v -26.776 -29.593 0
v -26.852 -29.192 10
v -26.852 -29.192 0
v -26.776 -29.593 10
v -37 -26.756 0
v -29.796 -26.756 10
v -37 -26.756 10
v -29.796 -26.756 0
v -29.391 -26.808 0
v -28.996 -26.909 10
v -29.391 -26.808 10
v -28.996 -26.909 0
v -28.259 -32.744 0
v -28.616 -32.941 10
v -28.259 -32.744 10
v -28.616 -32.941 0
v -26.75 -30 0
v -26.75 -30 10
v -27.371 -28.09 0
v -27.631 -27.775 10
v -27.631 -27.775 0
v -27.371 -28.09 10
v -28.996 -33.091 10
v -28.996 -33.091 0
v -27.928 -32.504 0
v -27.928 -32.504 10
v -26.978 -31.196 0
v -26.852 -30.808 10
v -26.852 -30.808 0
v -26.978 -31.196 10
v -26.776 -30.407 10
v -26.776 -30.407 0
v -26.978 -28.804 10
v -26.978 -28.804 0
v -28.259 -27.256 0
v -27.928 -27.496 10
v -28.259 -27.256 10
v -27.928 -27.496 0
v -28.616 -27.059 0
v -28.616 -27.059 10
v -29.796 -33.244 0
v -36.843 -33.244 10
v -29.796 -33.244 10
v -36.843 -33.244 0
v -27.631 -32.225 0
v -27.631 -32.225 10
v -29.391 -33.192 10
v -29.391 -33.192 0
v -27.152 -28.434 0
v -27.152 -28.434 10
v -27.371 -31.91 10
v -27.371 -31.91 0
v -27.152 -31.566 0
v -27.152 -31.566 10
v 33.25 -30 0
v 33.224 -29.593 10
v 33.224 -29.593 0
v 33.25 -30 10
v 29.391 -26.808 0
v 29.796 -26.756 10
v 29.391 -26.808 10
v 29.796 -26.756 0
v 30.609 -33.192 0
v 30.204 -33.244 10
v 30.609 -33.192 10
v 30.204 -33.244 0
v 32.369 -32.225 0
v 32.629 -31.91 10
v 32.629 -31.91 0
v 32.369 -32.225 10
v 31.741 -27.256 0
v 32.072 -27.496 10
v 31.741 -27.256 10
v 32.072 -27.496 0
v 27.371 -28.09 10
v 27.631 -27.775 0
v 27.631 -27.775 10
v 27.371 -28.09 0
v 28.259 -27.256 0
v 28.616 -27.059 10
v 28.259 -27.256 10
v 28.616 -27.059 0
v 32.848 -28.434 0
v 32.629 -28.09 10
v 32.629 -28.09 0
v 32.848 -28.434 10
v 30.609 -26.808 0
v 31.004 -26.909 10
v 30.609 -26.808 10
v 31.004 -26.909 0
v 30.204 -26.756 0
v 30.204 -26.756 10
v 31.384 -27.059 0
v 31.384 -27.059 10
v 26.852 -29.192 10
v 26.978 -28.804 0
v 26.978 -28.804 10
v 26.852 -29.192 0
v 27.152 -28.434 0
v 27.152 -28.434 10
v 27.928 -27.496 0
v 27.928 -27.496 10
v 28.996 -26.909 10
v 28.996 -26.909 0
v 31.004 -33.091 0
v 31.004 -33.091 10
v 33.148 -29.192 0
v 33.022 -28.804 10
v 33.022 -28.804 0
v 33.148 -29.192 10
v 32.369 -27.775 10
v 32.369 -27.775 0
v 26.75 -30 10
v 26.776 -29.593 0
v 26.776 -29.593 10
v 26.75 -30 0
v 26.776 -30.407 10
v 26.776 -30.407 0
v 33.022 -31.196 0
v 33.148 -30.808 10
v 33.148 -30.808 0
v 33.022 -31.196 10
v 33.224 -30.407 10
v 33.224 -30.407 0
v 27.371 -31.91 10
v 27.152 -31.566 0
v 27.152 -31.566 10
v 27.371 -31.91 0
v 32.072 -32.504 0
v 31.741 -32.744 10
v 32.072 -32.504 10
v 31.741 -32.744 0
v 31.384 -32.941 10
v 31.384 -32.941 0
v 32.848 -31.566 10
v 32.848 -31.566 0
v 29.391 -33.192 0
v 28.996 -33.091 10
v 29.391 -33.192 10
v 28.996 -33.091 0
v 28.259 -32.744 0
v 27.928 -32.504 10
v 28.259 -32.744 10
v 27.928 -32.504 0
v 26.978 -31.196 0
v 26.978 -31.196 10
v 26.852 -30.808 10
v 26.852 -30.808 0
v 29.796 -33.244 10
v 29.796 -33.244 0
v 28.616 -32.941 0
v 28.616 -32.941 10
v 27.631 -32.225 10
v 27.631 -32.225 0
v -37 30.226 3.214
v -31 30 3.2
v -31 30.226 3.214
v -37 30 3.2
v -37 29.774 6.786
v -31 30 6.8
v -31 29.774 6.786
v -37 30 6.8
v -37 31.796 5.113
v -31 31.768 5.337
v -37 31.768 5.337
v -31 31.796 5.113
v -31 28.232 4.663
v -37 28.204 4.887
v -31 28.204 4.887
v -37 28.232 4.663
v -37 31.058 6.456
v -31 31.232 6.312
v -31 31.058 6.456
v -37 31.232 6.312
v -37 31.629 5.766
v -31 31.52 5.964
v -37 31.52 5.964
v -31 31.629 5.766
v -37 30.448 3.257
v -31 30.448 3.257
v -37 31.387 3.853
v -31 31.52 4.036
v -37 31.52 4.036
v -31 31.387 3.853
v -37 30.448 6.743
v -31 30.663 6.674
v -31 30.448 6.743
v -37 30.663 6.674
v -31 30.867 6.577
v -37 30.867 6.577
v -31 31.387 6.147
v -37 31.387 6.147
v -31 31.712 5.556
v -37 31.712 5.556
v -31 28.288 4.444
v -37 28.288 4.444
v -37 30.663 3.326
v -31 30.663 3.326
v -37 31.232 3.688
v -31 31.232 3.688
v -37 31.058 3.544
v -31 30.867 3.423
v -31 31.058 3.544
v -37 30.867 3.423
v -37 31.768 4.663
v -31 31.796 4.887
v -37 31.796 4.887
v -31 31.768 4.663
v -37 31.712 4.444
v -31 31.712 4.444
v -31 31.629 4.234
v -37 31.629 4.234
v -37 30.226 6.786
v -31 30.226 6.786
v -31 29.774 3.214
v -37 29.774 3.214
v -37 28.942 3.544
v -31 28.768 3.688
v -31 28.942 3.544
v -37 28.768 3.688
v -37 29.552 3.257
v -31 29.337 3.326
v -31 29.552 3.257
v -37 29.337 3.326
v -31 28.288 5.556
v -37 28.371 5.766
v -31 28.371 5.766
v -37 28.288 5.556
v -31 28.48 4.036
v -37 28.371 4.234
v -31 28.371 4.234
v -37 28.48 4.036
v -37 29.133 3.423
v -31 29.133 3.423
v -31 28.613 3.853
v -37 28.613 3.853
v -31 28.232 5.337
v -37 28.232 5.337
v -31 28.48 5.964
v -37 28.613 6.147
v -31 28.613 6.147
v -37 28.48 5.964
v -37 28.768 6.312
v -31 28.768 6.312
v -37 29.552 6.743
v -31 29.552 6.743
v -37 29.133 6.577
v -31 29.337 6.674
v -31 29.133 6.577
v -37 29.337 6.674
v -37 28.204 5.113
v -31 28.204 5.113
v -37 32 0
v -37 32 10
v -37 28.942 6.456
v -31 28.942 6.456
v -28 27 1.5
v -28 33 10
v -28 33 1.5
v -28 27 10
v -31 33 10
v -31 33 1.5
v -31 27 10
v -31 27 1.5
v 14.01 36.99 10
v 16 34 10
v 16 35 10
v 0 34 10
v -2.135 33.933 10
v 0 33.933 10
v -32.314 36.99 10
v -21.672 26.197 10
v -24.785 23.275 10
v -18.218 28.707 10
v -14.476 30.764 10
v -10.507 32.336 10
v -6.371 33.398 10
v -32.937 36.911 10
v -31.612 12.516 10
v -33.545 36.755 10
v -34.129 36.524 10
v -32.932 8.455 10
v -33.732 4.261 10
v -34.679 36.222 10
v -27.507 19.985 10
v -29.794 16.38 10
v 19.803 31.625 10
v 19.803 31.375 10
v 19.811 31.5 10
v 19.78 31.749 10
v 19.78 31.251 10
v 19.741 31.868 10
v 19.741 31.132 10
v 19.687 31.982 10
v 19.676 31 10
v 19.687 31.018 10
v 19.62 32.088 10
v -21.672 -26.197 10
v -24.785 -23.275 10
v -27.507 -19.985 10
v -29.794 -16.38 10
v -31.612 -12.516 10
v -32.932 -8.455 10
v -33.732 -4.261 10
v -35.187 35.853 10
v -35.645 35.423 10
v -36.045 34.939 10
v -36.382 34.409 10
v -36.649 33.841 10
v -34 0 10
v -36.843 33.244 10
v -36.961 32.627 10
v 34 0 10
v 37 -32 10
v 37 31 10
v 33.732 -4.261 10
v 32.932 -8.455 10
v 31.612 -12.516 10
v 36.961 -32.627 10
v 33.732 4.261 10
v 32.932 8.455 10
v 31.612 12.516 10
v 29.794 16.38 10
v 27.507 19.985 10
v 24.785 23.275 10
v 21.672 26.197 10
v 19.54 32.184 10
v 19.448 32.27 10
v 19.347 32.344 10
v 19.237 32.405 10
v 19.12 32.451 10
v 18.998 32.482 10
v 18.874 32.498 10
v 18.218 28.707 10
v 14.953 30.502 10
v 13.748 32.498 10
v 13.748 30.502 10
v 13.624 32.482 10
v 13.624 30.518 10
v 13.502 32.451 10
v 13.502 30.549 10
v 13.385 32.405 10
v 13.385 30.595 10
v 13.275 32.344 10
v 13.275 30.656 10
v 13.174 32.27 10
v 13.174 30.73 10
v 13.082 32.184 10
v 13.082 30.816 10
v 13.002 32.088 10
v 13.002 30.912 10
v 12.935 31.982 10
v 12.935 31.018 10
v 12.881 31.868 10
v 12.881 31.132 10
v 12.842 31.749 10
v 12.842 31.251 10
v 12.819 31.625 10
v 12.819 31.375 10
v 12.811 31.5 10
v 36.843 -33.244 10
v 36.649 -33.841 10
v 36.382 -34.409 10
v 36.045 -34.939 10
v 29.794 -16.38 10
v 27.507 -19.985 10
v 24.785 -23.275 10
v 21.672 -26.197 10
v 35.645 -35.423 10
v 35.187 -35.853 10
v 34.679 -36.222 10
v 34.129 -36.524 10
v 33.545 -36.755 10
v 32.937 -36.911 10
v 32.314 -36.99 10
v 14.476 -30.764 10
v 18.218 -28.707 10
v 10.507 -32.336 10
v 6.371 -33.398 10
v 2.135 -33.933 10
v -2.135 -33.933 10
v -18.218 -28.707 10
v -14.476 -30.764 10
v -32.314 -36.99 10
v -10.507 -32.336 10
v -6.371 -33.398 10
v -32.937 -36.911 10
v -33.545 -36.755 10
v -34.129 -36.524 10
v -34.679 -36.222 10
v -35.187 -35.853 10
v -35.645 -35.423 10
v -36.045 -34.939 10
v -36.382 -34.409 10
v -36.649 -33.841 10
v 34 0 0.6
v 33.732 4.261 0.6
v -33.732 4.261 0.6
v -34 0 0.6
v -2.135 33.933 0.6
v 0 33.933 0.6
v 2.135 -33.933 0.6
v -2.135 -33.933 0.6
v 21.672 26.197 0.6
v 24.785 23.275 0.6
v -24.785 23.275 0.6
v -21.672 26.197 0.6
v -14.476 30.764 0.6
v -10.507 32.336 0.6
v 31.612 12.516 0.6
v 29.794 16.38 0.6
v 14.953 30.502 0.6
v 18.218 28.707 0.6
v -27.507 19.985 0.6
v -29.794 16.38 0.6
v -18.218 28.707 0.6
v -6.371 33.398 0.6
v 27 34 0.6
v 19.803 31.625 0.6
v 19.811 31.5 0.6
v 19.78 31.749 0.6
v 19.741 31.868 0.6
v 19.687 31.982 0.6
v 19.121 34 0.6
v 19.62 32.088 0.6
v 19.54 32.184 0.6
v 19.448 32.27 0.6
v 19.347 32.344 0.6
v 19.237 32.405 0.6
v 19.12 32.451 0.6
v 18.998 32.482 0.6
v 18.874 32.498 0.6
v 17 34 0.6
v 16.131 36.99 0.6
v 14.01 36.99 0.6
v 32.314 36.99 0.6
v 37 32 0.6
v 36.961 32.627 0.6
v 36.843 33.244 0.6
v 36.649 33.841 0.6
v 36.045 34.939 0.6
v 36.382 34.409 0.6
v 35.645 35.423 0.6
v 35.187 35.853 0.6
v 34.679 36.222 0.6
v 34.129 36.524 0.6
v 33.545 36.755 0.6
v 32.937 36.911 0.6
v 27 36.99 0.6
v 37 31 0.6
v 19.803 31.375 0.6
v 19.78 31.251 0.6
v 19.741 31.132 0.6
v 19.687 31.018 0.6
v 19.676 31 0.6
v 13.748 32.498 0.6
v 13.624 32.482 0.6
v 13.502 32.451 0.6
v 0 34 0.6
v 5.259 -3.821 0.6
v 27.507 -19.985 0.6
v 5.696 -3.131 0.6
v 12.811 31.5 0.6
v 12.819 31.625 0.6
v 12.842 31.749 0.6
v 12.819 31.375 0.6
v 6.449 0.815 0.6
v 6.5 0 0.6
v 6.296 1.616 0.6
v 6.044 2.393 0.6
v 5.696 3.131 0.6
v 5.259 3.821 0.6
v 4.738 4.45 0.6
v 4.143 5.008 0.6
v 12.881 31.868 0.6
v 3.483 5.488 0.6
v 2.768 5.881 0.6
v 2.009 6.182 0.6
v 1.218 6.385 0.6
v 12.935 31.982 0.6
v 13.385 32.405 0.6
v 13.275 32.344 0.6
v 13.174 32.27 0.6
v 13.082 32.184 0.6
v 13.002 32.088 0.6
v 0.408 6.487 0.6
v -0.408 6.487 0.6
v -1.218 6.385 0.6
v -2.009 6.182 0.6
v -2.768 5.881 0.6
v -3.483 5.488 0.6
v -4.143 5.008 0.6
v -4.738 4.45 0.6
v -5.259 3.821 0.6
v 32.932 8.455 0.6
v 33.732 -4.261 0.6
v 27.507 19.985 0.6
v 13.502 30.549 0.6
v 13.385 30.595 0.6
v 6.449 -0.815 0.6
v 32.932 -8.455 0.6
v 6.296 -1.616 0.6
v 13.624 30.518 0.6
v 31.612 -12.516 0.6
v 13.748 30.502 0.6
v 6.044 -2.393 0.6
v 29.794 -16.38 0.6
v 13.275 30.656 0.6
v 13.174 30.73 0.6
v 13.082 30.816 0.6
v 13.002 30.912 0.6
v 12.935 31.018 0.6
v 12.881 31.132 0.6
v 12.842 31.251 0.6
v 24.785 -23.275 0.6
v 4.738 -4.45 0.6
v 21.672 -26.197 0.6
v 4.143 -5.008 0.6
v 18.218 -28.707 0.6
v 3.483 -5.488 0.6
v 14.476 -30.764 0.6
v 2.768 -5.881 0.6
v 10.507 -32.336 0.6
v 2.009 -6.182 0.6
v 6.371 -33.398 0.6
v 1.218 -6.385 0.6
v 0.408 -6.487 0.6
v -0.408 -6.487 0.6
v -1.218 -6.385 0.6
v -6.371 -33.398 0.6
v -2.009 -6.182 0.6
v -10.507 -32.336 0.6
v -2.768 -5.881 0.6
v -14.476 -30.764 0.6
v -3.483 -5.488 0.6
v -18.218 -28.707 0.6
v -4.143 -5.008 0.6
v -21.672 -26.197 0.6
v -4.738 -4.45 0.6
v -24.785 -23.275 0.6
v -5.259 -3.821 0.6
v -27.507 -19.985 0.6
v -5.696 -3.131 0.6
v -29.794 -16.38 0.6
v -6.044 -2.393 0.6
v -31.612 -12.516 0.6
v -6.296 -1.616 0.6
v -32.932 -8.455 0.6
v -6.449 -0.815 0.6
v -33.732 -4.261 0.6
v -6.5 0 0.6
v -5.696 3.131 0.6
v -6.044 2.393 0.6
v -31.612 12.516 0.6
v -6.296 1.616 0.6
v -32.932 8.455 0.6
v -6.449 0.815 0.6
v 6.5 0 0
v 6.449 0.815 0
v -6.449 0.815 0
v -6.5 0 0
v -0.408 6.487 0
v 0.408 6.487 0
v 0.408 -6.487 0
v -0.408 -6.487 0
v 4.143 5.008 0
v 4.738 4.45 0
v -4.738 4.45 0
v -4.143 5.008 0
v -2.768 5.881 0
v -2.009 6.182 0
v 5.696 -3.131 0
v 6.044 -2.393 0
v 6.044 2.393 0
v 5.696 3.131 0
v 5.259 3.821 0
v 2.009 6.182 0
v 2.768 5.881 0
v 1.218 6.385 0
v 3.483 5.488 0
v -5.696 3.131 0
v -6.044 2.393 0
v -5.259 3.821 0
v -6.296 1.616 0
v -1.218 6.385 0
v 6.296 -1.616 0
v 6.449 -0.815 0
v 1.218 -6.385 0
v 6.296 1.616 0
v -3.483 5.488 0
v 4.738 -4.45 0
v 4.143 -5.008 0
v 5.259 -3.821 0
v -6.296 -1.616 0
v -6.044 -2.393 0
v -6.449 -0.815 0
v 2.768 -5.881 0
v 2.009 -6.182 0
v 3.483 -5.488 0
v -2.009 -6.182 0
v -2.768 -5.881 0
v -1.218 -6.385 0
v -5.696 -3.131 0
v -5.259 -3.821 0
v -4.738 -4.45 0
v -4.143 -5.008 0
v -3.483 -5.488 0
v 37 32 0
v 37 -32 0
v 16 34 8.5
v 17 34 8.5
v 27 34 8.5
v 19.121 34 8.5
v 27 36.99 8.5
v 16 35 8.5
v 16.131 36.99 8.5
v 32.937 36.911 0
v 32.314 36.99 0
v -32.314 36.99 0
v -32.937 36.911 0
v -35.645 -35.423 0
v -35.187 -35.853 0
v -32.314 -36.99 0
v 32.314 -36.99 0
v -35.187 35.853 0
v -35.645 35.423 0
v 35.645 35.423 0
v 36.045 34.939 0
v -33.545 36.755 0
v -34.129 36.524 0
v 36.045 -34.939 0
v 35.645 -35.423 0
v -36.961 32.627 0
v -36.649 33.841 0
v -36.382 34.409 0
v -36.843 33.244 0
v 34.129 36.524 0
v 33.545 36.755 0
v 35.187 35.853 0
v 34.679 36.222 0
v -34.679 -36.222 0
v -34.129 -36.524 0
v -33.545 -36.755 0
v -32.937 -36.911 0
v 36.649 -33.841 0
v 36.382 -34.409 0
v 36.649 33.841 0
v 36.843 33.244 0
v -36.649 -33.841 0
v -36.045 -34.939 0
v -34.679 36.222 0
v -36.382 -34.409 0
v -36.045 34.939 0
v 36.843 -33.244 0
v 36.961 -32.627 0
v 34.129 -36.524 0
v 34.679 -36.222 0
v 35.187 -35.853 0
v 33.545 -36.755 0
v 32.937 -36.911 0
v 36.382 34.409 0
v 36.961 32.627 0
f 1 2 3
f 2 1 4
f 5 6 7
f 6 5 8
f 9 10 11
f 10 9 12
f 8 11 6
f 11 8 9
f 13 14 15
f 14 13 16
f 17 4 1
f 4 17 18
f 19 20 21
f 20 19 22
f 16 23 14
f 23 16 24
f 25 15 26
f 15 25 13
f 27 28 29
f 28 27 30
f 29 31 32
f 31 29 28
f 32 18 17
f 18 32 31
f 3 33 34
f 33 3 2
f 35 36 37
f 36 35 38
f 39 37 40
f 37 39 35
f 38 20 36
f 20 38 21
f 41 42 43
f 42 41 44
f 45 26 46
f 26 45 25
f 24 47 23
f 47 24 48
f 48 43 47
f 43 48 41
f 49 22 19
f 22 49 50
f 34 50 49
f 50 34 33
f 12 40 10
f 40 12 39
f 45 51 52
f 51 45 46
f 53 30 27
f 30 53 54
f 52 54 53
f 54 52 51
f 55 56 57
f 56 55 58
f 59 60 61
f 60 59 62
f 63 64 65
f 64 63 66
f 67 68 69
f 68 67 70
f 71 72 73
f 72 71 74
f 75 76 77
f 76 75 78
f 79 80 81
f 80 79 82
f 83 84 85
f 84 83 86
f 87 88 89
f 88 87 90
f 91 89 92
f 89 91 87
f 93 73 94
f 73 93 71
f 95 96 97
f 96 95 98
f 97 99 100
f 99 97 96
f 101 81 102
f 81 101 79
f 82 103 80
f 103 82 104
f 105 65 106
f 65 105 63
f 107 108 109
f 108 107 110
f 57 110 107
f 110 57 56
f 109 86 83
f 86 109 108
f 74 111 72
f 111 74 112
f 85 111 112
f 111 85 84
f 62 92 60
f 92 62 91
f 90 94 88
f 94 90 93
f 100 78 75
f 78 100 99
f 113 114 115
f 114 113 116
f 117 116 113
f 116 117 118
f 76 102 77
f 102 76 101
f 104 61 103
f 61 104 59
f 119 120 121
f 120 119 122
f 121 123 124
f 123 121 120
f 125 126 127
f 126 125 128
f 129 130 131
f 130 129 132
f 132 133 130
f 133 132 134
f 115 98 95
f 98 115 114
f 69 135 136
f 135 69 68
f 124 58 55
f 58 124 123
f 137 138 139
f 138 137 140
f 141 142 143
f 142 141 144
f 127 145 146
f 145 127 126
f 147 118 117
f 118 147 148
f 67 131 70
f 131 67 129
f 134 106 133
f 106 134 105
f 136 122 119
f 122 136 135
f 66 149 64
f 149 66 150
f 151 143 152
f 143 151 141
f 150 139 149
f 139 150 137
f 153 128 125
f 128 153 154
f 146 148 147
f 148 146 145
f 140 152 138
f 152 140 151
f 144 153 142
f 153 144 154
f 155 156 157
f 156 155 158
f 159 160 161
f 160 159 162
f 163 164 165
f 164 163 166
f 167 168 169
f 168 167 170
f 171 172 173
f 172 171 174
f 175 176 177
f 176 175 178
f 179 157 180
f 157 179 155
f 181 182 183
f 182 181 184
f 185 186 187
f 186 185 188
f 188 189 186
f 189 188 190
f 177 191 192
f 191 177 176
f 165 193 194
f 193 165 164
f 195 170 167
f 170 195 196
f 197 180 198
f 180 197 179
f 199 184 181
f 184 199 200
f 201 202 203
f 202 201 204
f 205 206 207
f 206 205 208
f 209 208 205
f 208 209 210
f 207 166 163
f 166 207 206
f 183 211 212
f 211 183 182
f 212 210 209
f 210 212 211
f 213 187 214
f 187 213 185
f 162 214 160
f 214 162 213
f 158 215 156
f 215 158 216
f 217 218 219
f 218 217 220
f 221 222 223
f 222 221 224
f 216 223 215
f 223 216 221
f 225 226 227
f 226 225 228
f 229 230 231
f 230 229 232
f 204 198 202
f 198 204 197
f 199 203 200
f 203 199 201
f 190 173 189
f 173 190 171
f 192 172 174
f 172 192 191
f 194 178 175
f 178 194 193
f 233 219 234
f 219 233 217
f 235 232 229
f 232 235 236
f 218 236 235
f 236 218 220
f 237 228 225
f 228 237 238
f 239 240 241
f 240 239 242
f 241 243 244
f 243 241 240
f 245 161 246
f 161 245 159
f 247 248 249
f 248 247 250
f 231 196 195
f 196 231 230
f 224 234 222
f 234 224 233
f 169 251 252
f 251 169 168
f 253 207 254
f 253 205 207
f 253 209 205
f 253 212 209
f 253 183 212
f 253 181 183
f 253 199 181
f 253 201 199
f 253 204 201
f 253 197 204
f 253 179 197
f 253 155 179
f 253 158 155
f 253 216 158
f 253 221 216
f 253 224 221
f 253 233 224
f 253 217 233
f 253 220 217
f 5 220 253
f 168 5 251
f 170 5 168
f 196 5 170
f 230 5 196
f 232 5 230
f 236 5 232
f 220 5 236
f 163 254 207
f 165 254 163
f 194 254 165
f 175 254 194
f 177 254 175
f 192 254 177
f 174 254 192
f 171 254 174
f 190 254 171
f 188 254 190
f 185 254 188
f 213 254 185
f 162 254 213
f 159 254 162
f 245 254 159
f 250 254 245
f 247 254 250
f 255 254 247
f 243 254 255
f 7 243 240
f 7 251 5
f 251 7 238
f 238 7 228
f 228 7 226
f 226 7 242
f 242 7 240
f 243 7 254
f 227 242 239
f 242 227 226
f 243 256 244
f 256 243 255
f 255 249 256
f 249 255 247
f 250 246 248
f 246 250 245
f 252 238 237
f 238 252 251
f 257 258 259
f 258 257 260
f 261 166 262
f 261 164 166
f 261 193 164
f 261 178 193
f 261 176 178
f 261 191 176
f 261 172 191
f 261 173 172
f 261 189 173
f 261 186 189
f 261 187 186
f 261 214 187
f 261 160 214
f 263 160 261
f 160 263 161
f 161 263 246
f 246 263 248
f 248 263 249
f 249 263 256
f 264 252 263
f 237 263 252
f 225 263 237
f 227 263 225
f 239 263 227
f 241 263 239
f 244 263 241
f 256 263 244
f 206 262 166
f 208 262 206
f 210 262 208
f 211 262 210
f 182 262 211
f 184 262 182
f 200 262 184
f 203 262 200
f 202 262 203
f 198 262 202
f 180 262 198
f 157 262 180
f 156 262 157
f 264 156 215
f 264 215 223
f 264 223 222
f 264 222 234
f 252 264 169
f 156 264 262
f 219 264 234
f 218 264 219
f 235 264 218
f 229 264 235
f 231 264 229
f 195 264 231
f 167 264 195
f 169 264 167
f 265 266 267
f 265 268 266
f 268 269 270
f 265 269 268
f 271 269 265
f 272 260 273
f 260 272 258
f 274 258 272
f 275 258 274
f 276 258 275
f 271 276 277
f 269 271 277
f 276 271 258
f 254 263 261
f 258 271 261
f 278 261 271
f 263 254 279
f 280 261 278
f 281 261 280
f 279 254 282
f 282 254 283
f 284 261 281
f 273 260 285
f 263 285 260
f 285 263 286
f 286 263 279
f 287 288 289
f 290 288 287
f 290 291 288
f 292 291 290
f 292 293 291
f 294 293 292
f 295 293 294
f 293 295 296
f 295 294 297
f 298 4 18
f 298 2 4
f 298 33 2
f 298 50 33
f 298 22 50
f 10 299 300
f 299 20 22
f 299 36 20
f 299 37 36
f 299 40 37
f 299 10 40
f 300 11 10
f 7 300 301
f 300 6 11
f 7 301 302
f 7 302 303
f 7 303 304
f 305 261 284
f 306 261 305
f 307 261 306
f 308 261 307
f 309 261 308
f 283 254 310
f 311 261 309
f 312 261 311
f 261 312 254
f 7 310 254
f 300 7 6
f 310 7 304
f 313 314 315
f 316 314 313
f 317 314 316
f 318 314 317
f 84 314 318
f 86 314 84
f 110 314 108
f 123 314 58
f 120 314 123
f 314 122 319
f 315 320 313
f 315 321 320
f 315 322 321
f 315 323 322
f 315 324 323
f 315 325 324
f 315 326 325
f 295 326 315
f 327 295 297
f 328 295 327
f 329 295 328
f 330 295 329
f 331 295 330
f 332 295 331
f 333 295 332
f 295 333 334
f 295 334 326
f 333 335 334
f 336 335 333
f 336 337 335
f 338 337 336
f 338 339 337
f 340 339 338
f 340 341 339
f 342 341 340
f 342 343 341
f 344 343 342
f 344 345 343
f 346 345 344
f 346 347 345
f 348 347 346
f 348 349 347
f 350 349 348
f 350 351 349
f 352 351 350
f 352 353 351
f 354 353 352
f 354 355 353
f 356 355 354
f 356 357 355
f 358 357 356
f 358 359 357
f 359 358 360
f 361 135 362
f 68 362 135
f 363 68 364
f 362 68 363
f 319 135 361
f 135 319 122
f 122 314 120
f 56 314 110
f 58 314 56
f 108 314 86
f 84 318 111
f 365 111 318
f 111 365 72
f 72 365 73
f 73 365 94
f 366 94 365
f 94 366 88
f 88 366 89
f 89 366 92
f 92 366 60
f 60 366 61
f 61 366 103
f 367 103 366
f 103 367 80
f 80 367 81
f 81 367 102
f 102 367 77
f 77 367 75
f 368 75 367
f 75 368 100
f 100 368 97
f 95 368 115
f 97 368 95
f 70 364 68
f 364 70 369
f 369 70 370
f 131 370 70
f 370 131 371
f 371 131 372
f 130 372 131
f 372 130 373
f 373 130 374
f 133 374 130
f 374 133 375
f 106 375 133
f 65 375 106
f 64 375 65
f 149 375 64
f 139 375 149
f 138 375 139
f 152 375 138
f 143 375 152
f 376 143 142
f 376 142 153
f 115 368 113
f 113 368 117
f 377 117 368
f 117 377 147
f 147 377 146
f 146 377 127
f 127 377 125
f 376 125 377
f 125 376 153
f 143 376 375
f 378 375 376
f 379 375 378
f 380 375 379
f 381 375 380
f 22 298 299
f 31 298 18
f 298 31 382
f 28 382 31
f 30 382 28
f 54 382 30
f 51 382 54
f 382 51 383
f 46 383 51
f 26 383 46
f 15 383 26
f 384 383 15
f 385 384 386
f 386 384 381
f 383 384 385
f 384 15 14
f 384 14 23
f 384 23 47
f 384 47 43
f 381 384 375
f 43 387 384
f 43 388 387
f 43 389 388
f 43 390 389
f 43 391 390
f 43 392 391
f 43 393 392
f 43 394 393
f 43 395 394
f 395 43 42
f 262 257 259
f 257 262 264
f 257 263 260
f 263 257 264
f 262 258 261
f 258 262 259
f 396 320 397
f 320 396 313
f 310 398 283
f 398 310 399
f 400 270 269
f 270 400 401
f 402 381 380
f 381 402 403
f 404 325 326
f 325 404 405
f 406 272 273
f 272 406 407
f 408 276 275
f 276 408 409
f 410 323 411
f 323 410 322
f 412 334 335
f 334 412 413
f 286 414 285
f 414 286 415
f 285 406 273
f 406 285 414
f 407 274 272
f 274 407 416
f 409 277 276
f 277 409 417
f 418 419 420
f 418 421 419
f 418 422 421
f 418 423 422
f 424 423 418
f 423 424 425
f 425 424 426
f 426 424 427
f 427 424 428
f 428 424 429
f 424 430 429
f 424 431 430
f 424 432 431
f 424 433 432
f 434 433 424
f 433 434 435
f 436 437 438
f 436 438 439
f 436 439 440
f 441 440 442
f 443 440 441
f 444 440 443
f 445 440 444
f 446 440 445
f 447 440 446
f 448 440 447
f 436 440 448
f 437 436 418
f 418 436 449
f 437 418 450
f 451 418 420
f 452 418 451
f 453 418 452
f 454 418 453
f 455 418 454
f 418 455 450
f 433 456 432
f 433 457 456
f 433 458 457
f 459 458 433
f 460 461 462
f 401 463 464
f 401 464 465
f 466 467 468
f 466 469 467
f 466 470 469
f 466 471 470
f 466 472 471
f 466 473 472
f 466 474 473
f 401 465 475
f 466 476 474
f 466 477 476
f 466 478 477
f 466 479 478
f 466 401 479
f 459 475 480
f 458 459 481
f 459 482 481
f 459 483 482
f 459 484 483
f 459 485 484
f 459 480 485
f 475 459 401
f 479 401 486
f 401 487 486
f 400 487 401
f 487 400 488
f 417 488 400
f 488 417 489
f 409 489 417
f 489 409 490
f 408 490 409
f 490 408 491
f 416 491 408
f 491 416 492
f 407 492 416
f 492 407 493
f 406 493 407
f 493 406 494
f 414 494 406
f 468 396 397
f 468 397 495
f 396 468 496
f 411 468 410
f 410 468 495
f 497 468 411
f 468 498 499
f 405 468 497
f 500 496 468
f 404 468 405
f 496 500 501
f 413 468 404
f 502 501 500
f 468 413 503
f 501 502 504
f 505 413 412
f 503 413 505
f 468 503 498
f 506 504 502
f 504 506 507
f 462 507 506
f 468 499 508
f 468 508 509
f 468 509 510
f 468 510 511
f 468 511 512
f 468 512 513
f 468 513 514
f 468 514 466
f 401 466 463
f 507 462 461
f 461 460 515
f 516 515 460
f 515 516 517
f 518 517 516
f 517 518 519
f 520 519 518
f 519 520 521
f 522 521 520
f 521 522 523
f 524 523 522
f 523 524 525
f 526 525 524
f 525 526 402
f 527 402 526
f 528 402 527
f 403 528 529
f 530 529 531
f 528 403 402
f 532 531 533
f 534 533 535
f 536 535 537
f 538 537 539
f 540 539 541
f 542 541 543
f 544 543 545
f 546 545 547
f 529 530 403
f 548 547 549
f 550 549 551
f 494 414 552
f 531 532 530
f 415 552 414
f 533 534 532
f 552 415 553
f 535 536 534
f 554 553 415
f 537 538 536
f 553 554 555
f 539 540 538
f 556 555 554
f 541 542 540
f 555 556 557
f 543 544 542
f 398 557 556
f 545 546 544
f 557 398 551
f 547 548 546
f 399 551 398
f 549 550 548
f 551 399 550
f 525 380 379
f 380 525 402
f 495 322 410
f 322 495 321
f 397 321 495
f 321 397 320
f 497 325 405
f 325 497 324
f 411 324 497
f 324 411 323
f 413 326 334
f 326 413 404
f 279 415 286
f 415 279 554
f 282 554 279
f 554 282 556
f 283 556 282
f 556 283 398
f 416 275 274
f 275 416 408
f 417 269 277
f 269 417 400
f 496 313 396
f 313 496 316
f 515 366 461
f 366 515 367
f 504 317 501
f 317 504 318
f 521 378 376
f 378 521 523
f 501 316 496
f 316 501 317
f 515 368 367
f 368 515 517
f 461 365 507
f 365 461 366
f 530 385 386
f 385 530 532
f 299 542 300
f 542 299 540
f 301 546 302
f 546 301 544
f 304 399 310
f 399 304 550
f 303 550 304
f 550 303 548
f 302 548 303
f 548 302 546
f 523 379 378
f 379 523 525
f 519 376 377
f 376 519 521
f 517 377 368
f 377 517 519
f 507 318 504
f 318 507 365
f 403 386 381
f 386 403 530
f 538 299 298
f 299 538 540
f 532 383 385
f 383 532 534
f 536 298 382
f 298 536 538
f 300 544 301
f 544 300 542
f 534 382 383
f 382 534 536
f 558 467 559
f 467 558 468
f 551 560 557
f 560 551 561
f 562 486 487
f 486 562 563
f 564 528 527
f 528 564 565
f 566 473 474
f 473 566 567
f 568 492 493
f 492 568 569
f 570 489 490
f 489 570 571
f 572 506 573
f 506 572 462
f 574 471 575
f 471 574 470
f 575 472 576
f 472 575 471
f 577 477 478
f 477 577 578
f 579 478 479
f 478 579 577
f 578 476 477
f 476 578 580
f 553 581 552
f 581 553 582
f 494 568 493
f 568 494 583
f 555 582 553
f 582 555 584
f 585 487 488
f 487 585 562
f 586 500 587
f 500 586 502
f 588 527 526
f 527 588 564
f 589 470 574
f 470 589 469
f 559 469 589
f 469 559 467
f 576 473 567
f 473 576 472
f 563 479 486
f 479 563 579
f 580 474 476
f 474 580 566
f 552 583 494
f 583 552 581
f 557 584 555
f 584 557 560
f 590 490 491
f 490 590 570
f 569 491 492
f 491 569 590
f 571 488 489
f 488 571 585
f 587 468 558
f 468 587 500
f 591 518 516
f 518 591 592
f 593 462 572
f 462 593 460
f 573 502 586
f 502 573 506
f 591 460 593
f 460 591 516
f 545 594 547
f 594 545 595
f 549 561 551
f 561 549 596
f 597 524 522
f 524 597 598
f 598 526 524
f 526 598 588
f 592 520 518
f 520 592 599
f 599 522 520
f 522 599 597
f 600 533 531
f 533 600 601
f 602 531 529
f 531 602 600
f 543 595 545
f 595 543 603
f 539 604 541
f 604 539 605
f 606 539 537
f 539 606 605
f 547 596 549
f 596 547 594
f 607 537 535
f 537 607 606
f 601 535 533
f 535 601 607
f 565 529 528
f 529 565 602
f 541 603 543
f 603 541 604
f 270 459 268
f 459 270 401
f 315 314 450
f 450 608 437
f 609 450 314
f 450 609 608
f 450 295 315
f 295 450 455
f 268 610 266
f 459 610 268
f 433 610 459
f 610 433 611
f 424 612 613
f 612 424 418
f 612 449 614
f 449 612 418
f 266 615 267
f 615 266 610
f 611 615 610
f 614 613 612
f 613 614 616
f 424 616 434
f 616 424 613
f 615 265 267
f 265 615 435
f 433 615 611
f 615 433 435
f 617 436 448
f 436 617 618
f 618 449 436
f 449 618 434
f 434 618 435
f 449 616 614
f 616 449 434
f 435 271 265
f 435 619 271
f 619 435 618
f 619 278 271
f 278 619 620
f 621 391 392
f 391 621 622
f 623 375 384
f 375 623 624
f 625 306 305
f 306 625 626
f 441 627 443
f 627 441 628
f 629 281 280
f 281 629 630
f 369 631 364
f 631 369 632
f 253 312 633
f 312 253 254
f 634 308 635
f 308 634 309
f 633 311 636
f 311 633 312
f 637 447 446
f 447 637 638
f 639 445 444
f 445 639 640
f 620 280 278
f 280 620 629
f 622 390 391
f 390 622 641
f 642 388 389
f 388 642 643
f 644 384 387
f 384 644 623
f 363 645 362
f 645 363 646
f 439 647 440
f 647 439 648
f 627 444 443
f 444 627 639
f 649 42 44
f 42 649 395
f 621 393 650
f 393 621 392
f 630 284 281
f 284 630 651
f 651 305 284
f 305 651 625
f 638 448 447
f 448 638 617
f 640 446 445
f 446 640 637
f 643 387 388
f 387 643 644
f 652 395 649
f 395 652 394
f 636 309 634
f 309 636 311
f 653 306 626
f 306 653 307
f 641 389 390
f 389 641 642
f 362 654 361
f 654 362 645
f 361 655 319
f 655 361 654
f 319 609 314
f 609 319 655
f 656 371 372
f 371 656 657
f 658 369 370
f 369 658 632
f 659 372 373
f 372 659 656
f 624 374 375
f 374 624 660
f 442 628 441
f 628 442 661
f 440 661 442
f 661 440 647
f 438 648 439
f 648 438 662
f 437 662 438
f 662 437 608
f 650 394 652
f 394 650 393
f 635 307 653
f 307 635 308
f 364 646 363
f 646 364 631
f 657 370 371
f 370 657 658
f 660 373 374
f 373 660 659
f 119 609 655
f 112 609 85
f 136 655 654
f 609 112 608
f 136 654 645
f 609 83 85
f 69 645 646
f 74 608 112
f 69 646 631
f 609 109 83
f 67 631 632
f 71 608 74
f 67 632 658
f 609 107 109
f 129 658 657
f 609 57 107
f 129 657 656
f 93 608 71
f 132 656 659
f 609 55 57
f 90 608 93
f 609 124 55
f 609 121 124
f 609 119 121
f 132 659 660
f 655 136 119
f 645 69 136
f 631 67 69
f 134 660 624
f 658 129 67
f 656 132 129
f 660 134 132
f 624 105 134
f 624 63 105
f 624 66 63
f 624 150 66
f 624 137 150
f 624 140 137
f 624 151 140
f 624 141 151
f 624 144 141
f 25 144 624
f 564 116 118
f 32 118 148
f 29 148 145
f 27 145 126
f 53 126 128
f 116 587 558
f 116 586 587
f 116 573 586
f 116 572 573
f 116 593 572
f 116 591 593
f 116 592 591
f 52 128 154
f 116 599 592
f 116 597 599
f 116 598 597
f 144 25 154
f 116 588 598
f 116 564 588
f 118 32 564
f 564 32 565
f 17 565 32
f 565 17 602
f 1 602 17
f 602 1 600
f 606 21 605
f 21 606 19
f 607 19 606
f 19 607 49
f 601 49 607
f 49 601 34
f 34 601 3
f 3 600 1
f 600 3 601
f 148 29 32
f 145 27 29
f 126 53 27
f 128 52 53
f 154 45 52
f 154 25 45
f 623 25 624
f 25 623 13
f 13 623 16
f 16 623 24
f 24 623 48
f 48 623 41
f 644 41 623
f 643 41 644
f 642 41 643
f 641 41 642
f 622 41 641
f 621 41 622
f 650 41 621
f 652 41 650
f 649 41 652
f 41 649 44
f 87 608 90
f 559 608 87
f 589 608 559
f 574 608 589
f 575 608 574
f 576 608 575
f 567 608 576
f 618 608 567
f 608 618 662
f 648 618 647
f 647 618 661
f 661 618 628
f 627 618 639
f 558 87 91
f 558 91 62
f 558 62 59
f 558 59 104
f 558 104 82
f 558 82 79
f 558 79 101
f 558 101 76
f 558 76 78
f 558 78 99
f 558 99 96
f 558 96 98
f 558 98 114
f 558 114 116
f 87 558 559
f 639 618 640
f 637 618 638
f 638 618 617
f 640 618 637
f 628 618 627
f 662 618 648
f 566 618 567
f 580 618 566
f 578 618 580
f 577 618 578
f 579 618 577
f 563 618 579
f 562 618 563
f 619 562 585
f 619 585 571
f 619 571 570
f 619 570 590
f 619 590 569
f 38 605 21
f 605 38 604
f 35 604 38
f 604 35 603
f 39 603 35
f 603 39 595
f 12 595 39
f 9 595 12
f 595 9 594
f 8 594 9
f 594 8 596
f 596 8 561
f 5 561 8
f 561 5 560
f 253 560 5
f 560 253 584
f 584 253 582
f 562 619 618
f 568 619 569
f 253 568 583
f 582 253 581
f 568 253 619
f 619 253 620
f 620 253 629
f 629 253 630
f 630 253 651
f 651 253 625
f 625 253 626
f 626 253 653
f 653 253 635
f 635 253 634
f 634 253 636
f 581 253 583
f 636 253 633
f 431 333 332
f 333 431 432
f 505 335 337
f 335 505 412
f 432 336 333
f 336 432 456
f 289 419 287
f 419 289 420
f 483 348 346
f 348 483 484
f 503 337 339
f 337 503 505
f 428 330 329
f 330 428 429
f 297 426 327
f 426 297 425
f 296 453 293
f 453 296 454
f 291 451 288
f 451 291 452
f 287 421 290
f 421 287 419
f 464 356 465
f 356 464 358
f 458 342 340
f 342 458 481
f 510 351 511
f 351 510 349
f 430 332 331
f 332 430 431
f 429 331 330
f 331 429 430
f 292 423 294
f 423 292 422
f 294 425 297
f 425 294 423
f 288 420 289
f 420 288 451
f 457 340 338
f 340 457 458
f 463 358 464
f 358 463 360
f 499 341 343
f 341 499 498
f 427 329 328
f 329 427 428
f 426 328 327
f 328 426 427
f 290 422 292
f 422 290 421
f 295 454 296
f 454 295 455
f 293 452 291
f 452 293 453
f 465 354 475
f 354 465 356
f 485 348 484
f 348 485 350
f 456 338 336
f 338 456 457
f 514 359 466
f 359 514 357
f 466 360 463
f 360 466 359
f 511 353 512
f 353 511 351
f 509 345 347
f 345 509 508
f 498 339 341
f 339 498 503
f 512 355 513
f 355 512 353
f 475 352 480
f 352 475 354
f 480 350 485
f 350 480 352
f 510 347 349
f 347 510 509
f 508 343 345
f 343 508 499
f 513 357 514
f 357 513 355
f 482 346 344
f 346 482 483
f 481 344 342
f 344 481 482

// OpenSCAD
$fn = 50;


union() {
	difference() {
		union() {
			translate(v = [0, 0, 0]) {
				rotate(a = [0, 0, 0]) {
					hull() {
						translate(v = [-32.0000000000, 32.0000000000, 0]) {
							rotate(a = [0, 0, 0]) {
								translate(v = [0, 0, 0]) {
									rotate(a = [0, 0, 0]) {
										cylinder(h = 10, r = 5);
									}
								}
							}
						}
						translate(v = [32.0000000000, 32.0000000000, 0]) {
							rotate(a = [0, 0, 0]) {
								translate(v = [0, 0, 0]) {
									rotate(a = [0, 0, 0]) {
										cylinder(h = 10, r = 5);
									}
								}
							}
						}
						translate(v = [-32.0000000000, -32.0000000000, 0]) {
							rotate(a = [0, 0, 0]) {
								translate(v = [0, 0, 0]) {
									rotate(a = [0, 0, 0]) {
										cylinder(h = 10, r = 5);
									}
								}
							}
						}
						translate(v = [32.0000000000, -32.0000000000, 0]) {
							rotate(a = [0, 0, 0]) {
								translate(v = [0, 0, 0]) {
									rotate(a = [0, 0, 0]) {
										cylinder(h = 10, r = 5);
									}
								}
							}
						}
					}
				}
			}
		}
		union() {
			translate(v = [-37.5000000000, -30.0000000000, -125]) {
				rotate(a = [0, 0, 0]) {
					hull() {
						translate(v = [7.5000000000, 0, 0]) {
							rotate(a = [0, 0, 0]) {
								translate(v = [0, 0, 0]) {
									rotate(a = [0, 0, 0]) {
										cylinder(h = 250, r = 3.2500000000);
									}
								}
							}
						}
						translate(v = [-7.5000000000, 0, 0]) {
							rotate(a = [0, 0, 0]) {
								translate(v = [0, 0, 0]) {
									rotate(a = [0, 0, 0]) {
										cylinder(h = 250, r = 3.2500000000);
									}
								}
							}
						}
					}
				}
			}
			translate(v = [30.0000000000, -30.0000000000, -125.0000000000]) {
				rotate(a = [0, 0, 0]) {
					cylinder(h = 250, r = 3.2500000000);
				}
			}
			translate(v = [-37.0000000000, 30.0000000000, 5.0000000000]) {
				rotate(a = [0, 90, 0]) {
					cylinder(h = 9, r = 1.8000000000);
				}
			}
			translate(v = [-31.0000000000, 27.0000000000, 1.5000000000]) {
				rotate(a = [0, 0, 0]) {
					cube(size = [3, 6, 8.5000000000]);
				}
			}
			translate(v = [0, 0, 0.6000000000]) {
				rotate(a = [0, 0, 0]) {
					cylinder(h = 12.4000000000, r = 34.0000000000);
				}
			}
			translate(v = [0, 0, -5.0000000000]) {
				rotate(a = [0, 0, 0]) {
					cylinder(h = 10, r = 6.5000000000);
				}
			}
			translate(v = [0.0000000000, 31.0000000000, 0.6000000000]) {
				rotate(a = [0, 0, 0]) {
					cube(size = [37.0000000000, 3, 12.4000000000]);
				}
			}
			translate(v = [27.0000000000, 31.0000000000, 0.6000000000]) {
				rotate(a = [0, 0, 0]) {
					cube(size = [10, 6, 12.4000000000]);
				}
			}
			#translate(v = [16.0000000000, 31.0000000000, 8.5000000000]) {
				rotate(a = [0, 0, 0]) {
					cube(size = [21, 6, 1.5000000000]);
				}
			}
			translate(v = [13.2500000000, 37.7500000000, 0.6000000000]) {
				rotate(a = [0, 0, -45]) {
					cube(size = [7.5000000000, 1.5000000000, 12.4000000000]);
				}
			}
			translate(v = [7.0610000000, 30.5000000000, 0.6000000000]) {
				rotate(a = [0, 0, 0]) {
					cube(size = [7.5000000000, 2, 9.4000000000]);
				}
			}
		}
	}
	union() {
		translate(v = [16.3110000000, 31.5000000000, 0]) {
			rotate(a = [0, 0, 0]) {
				hull() {
					translate(v = [2.5000000000, 0, 0]) {
						rotate(a = [0, 0, 0]) {
							translate(v = [0, 0, 0]) {
								rotate(a = [0, 0, 0]) {
									cylinder(h = 10, r = 1.0000000000);
								}
							}
						}
					}
					translate(v = [-2.5000000000, 0, 0]) {
						rotate(a = [0, 0, 0]) {
							translate(v = [0, 0, 0]) {
								rotate(a = [0, 0, 0]) {
									cylinder(h = 10, r = 1.0000000000);
								}
							}
						}
					}
				}
			}
		}
	}
}
